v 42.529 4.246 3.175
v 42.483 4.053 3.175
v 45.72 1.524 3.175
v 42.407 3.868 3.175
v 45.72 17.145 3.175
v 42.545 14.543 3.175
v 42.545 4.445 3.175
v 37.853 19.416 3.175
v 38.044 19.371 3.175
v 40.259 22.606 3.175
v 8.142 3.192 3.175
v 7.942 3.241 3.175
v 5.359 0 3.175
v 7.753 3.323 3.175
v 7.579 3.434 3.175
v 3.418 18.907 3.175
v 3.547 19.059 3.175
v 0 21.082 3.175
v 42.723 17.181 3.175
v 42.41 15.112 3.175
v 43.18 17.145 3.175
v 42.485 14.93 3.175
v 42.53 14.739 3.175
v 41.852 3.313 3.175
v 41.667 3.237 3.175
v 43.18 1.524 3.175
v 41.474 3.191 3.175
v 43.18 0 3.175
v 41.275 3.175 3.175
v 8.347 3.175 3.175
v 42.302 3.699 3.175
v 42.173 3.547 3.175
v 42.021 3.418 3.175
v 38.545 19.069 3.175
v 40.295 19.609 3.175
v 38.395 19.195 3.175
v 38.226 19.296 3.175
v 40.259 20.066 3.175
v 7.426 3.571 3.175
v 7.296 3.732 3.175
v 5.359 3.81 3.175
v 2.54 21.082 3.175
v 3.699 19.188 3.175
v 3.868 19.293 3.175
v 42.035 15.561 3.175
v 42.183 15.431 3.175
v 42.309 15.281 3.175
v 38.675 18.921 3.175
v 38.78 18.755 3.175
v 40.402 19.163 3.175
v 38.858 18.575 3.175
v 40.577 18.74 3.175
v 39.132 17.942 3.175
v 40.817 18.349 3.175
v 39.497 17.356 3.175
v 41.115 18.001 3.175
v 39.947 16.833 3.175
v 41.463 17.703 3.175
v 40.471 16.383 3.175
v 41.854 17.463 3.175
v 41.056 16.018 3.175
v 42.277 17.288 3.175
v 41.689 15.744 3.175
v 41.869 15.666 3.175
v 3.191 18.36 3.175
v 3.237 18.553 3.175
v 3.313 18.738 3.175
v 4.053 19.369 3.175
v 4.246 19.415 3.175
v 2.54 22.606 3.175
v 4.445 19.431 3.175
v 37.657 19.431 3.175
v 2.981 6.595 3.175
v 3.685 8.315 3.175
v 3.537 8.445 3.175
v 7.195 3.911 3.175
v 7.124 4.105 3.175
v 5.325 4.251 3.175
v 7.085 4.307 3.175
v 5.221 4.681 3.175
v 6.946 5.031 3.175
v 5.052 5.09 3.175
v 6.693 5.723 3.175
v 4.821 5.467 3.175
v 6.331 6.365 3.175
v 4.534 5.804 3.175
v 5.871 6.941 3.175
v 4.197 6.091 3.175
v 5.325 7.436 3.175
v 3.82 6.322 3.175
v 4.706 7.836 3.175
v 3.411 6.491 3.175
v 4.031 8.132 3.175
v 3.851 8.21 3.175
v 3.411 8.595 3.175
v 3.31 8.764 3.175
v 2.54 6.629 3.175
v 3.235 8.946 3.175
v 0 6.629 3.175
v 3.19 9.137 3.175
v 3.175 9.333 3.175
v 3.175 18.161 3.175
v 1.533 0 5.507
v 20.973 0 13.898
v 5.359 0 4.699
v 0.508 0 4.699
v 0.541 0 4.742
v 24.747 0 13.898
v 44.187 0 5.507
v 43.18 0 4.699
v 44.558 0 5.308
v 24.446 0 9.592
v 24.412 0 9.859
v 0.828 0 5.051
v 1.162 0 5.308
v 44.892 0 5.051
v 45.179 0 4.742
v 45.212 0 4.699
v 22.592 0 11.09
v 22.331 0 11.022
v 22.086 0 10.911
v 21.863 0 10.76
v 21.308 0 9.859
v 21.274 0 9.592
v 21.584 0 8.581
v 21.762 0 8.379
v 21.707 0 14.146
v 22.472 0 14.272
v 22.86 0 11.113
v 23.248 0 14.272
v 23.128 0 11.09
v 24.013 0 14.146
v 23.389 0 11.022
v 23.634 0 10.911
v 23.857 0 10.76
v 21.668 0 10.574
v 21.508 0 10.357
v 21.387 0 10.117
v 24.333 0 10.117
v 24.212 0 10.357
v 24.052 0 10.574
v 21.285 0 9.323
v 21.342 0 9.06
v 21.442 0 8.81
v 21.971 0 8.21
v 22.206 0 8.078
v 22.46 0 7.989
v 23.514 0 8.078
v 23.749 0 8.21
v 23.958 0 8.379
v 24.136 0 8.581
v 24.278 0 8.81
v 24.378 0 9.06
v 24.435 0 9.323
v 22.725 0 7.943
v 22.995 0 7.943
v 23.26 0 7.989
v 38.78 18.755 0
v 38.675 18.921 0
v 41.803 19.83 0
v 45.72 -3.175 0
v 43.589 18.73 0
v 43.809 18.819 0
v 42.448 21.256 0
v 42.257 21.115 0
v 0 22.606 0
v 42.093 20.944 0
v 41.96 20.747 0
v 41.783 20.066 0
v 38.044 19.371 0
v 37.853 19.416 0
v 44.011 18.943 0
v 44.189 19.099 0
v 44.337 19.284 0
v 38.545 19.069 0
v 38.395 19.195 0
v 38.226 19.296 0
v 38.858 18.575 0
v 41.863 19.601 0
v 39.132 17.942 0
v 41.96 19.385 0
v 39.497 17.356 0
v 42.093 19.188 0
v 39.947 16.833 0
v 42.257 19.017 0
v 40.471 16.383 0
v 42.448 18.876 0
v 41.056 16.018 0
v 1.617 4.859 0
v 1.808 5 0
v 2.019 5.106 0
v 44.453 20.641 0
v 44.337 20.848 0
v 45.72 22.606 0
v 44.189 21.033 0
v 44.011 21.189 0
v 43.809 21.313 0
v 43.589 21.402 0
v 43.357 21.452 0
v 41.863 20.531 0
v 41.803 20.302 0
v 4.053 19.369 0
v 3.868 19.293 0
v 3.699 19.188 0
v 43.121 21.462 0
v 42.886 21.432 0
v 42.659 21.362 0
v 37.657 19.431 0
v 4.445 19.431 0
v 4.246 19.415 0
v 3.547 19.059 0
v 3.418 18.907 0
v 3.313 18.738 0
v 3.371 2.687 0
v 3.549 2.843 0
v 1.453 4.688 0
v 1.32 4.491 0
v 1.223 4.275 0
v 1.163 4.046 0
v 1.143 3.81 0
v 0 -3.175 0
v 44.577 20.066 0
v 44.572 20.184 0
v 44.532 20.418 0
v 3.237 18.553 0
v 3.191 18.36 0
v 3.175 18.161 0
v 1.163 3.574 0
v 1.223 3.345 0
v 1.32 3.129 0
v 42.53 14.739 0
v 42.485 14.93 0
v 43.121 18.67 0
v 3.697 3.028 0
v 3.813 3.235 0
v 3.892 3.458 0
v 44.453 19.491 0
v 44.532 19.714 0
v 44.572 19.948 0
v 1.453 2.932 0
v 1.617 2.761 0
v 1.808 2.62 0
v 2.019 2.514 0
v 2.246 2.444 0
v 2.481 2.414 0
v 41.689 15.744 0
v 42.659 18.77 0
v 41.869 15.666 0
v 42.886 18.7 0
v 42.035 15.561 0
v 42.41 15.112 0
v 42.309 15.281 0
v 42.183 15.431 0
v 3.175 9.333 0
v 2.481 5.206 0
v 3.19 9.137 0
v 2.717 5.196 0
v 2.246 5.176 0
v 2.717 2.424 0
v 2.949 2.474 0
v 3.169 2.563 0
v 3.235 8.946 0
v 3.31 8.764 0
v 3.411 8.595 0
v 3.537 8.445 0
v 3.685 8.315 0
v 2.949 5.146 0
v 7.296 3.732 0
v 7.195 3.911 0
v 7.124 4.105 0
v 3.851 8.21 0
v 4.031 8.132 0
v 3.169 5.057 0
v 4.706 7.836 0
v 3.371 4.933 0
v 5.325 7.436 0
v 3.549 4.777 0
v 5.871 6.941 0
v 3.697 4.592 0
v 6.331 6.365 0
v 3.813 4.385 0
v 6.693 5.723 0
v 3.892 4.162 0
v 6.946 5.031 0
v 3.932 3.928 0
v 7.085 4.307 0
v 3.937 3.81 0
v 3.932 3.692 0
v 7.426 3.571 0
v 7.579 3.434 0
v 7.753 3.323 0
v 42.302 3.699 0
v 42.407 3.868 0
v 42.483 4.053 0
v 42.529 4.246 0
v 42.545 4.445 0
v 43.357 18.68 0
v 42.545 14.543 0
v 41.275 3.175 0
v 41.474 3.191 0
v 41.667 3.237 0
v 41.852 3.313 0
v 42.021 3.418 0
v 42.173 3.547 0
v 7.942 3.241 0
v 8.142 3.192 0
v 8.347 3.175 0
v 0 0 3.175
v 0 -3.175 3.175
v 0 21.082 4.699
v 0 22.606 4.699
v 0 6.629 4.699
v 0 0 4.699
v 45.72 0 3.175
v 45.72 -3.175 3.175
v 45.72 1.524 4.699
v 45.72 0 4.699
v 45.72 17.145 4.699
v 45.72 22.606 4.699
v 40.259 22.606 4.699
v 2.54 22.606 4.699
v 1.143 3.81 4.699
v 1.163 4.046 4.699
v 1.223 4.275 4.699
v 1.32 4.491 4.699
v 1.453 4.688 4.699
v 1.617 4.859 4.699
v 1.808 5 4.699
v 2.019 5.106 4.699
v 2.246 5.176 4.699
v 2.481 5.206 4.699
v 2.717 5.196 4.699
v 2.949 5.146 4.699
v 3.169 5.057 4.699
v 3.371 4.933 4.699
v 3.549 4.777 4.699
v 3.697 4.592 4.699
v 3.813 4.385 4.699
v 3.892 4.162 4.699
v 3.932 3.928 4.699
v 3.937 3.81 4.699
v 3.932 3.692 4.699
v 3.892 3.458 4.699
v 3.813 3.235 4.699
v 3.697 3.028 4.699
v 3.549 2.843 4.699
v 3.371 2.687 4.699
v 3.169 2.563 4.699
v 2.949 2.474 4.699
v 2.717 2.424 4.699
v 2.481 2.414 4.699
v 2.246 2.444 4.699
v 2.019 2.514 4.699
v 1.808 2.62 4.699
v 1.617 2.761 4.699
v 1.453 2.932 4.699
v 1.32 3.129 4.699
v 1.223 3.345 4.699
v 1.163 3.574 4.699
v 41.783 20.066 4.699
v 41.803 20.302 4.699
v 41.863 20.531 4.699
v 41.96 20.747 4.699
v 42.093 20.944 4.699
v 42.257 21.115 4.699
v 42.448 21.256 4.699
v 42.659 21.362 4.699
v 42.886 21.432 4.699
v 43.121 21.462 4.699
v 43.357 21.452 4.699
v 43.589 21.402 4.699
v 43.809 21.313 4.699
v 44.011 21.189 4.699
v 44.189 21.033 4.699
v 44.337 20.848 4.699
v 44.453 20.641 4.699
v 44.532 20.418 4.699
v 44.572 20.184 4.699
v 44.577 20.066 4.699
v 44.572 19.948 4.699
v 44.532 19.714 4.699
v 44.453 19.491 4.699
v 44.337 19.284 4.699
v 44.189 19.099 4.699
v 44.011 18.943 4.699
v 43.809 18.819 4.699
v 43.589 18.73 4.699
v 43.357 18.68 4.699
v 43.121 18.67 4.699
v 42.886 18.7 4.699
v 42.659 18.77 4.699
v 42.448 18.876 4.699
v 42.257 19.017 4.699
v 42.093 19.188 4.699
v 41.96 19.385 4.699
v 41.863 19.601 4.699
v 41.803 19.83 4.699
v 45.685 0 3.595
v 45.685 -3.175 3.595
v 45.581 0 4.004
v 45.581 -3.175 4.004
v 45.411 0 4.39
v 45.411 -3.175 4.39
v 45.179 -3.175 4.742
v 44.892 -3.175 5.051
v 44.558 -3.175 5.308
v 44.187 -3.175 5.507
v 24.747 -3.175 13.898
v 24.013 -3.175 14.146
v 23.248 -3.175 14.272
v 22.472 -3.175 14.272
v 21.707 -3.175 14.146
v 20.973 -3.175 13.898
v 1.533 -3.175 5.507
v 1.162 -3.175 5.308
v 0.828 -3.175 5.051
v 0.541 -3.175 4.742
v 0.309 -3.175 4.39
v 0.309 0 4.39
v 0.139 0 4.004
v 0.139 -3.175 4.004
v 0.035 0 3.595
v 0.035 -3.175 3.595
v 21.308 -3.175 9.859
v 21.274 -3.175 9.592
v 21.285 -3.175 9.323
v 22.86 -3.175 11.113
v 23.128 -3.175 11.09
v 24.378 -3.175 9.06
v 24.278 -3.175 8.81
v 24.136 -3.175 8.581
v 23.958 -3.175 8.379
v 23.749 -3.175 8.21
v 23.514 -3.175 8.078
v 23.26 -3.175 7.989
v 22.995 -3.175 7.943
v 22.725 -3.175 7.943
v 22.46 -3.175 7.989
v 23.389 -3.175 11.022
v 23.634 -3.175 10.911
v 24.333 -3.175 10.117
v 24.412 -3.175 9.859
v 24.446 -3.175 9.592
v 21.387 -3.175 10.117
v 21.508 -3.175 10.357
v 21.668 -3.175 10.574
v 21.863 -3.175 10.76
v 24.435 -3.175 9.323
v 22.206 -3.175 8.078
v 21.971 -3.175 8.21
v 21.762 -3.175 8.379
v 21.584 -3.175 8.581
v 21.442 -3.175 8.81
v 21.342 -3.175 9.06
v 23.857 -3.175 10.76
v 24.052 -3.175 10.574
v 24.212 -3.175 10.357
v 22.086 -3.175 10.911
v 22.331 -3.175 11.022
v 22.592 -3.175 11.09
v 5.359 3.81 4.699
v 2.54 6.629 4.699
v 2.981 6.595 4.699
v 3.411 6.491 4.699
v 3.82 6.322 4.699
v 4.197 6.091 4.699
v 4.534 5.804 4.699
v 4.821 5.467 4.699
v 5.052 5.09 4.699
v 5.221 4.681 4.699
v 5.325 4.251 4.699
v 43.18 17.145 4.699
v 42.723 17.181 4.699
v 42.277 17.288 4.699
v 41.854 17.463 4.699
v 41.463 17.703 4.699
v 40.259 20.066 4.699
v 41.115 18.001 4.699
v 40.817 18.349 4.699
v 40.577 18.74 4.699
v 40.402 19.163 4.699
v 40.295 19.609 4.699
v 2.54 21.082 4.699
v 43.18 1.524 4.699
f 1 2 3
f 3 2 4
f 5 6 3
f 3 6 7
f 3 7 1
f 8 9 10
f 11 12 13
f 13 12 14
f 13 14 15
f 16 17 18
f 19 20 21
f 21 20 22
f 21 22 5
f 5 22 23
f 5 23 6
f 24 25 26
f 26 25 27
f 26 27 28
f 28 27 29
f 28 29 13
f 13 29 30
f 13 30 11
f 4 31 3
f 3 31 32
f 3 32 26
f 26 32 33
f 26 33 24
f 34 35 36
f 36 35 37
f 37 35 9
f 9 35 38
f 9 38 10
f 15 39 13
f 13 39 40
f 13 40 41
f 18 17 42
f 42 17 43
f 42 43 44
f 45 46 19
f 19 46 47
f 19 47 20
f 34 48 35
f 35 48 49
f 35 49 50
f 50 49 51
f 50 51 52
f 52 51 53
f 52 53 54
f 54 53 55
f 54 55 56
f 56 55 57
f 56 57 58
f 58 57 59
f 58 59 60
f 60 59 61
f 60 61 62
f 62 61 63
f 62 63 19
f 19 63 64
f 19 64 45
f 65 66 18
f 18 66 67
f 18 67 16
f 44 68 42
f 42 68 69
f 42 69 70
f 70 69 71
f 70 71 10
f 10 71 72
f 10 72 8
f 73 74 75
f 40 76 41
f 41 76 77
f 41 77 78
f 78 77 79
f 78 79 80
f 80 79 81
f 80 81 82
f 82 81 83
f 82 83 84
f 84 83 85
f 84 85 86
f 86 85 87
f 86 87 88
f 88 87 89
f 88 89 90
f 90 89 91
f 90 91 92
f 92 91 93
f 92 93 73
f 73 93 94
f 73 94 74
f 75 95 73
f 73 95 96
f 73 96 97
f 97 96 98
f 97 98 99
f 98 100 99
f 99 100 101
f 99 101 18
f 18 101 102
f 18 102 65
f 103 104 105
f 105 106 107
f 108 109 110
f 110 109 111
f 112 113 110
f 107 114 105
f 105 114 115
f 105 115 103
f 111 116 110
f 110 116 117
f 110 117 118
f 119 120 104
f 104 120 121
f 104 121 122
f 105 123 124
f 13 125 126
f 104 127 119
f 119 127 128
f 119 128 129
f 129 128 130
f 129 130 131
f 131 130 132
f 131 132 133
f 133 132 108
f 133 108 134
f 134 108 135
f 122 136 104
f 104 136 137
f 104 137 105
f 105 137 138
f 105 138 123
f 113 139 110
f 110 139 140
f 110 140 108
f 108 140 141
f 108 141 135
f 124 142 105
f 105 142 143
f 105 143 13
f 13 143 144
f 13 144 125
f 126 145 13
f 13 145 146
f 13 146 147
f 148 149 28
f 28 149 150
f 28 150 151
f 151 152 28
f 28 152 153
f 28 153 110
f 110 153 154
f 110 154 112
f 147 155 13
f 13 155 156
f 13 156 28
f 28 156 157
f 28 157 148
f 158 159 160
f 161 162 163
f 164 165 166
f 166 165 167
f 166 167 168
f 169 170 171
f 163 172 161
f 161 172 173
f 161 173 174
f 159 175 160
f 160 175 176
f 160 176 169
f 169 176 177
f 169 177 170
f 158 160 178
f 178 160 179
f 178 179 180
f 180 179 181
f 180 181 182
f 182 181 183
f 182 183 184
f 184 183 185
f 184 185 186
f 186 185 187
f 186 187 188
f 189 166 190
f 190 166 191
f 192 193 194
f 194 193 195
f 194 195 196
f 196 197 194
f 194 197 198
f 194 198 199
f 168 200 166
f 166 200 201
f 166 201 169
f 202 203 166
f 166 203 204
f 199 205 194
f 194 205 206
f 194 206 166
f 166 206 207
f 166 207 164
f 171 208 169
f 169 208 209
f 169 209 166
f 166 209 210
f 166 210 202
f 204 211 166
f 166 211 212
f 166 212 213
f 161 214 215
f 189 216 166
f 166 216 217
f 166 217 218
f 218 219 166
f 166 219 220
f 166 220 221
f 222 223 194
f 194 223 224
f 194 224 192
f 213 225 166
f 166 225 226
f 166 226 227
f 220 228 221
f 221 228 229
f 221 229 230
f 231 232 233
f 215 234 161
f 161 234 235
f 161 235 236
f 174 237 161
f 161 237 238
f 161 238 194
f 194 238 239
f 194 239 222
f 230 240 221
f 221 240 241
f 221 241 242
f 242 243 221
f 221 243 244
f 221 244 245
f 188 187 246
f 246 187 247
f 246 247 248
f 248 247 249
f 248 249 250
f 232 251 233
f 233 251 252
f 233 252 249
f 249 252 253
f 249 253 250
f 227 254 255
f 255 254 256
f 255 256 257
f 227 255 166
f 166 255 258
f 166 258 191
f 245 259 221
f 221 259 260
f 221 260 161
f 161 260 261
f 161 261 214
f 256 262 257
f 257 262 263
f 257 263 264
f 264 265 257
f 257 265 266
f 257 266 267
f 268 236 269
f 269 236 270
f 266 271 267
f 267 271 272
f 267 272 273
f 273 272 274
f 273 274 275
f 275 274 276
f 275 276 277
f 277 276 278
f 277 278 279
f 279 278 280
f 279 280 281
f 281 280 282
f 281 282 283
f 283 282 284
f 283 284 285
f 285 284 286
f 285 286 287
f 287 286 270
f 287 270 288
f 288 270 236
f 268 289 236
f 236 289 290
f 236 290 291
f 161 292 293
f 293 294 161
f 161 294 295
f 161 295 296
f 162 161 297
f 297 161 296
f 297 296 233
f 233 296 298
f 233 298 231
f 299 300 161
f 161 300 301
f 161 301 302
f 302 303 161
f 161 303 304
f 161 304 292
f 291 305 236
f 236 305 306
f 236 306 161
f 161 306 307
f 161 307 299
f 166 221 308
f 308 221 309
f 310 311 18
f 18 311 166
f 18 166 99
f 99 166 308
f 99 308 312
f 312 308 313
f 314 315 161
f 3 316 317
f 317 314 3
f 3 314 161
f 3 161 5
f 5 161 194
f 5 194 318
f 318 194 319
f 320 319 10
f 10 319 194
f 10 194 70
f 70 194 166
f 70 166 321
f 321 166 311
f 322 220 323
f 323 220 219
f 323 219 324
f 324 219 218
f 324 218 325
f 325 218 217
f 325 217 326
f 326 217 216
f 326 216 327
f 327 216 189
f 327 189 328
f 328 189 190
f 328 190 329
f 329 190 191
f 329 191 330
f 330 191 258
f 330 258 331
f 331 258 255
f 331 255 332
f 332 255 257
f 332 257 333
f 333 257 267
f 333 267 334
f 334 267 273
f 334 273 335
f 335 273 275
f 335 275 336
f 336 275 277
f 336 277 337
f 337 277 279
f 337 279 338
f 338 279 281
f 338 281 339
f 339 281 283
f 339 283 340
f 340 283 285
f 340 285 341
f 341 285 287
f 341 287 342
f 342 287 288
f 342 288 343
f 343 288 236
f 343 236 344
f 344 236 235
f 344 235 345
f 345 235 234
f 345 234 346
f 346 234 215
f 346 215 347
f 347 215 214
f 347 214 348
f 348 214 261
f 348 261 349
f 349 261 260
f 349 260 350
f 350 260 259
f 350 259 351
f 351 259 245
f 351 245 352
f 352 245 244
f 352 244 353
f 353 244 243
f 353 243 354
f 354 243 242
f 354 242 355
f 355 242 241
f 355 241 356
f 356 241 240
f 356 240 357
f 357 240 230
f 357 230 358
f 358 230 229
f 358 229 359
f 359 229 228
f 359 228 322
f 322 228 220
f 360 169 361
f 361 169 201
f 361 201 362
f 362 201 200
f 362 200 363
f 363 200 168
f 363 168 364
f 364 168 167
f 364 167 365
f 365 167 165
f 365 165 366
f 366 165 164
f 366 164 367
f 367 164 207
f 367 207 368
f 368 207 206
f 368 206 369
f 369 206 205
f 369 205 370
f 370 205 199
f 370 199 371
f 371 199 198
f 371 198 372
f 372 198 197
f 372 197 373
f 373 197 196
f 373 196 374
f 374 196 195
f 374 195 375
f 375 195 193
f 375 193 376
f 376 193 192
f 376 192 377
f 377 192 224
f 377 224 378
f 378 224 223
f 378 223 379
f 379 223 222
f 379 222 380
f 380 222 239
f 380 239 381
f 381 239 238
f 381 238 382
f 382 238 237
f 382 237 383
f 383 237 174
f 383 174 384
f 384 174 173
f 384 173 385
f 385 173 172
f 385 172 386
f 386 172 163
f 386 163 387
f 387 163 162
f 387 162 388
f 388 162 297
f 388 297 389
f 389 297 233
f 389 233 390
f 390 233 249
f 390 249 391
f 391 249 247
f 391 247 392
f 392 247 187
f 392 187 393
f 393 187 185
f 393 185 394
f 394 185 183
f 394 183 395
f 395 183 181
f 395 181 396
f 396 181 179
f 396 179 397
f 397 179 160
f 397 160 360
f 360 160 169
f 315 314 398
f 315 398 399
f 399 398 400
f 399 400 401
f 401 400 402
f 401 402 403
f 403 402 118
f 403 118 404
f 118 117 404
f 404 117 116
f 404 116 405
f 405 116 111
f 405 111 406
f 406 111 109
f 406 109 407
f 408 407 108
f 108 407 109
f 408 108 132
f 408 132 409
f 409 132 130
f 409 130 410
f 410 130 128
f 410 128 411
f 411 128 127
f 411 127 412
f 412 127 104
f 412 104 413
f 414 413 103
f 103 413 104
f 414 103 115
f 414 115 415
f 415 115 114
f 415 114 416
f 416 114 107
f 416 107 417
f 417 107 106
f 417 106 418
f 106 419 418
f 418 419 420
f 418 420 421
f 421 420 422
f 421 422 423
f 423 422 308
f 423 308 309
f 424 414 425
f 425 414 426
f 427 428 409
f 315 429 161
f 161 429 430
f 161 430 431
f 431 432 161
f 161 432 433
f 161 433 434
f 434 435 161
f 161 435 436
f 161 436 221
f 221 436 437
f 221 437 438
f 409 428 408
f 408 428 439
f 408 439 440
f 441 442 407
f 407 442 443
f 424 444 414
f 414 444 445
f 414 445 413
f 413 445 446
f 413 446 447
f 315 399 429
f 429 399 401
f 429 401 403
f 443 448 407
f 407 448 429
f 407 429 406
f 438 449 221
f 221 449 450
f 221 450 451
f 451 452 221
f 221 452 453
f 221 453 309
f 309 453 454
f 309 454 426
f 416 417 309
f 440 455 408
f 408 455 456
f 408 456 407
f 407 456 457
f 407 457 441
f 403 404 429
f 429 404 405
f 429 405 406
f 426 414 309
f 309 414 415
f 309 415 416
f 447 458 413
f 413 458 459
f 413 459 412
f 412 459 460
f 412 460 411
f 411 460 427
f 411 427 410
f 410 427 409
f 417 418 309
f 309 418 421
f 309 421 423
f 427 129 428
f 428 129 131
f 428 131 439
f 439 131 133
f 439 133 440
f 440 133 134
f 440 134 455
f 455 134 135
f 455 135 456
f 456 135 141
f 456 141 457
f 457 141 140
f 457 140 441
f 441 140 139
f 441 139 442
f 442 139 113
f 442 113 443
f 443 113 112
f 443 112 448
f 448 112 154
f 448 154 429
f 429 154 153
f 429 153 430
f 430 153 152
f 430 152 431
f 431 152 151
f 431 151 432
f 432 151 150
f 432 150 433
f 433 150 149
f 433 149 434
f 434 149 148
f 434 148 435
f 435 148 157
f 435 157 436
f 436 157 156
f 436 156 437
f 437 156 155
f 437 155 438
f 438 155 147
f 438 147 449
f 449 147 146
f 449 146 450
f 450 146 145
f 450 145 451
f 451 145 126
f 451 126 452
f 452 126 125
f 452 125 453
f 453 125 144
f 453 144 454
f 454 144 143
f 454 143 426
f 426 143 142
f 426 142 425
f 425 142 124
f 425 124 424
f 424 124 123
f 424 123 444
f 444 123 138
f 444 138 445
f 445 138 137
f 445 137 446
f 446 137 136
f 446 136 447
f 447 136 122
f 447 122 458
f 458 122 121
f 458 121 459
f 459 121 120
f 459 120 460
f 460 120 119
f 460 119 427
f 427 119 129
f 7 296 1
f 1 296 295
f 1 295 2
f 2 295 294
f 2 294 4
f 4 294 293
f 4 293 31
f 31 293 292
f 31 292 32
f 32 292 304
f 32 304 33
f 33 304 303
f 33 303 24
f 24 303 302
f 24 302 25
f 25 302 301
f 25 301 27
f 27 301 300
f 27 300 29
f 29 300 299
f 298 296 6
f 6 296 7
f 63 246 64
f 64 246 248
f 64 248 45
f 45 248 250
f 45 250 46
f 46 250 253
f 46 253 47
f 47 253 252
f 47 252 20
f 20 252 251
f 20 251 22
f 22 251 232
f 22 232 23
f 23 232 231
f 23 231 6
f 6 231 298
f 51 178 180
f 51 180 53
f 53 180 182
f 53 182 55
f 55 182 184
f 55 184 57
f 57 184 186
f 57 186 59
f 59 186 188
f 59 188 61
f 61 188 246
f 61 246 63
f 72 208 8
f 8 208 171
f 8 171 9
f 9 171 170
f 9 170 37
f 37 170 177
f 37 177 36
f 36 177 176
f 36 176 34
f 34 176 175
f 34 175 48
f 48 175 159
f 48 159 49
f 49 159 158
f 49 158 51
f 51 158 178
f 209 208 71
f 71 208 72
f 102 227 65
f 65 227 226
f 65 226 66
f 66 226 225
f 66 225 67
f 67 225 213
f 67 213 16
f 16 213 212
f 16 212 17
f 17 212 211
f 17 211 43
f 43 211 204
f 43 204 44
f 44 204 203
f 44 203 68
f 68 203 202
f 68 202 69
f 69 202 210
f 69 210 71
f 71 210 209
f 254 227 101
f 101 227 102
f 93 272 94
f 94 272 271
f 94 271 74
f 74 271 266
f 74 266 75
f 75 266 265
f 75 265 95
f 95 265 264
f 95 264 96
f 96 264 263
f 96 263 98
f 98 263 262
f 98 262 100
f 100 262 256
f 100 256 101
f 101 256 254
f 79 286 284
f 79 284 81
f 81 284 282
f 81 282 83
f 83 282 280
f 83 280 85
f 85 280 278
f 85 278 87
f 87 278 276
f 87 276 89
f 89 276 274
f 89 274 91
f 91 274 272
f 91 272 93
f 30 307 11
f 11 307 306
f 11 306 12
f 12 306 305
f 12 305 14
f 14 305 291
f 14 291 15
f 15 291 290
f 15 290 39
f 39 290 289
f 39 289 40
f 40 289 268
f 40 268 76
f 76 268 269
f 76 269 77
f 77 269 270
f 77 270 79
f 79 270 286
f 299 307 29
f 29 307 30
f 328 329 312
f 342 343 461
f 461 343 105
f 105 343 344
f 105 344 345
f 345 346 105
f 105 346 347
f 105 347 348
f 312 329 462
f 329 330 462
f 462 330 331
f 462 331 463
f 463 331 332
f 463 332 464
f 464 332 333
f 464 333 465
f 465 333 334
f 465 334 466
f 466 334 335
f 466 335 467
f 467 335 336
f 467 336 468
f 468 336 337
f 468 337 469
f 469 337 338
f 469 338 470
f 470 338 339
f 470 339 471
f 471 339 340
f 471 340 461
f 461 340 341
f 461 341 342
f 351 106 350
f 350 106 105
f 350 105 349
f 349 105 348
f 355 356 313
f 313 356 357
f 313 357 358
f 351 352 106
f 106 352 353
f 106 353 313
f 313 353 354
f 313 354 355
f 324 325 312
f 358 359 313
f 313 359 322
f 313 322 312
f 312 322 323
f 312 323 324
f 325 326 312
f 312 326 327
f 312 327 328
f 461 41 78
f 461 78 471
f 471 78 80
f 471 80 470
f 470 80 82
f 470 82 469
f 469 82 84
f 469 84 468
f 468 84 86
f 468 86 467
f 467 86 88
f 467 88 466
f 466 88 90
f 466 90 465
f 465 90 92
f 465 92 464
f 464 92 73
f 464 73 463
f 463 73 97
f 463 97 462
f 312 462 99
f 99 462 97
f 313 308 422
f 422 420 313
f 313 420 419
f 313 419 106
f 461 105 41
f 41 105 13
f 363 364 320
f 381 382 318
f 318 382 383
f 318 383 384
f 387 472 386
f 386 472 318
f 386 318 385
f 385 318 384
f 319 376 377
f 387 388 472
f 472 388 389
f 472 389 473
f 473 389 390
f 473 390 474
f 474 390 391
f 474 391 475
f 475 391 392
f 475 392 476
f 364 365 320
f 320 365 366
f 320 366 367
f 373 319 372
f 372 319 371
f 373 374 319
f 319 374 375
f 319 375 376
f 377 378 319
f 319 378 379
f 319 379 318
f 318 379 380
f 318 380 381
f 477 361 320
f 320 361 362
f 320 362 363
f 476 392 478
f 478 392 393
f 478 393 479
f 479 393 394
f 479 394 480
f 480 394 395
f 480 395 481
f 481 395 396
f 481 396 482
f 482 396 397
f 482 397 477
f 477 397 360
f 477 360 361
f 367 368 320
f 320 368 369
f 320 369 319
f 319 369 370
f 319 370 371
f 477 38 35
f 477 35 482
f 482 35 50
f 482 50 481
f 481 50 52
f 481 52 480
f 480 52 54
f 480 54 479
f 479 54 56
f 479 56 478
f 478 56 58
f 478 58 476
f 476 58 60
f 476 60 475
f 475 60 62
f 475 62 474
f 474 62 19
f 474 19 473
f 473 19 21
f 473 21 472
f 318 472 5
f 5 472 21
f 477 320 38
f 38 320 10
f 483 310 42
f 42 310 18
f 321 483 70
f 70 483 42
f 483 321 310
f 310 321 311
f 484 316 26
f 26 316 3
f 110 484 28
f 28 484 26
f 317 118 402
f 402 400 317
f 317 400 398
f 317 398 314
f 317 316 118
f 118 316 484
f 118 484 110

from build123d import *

# Parameters (mm, degrees)
SKETCH1_W           = 45.72
SKETCH1_H           = 22.606
SKETCH1_R           = 1.397
BOSS_EXTRUDE1_DEPTH = 3.175
SKETCH3_R           = 1.5875
BOSS_EXTRUDE2_DEPTH = 3.175
CUT_EXTRUDE1_DEPTH  = 53.966803682
SKETCH5_R           = 1.397
SKETCH5_W           = 2.54
SKETCH5_H           = 1.524
BOSS_EXTRUDE3_DEPTH = 1.524


with BuildPart() as part:
    # Sketch1 → Boss-Extrude1 (new body)
    with BuildSketch(Plane.XY):
        with Locations((22.86, 11.303)):
            Rectangle(SKETCH1_W, SKETCH1_H)
        with Locations((2.54, 3.81)):
            Circle(SKETCH1_R, mode=Mode.SUBTRACT)
        with Locations((43.18, 20.066)):
            Circle(SKETCH1_R, mode=Mode.SUBTRACT)
    extrude(amount=BOSS_EXTRUDE1_DEPTH)

    # Sketch3 → Boss-Extrude2 (add)
    with BuildSketch(Plane(origin=(0, 0, 0), x_dir=(1, 0, 0), z_dir=(0, 1, 0))):
        with BuildLine():
            Line((0, -3.175), (0, 0))
            Line((0, 0), (45.72, 0))
            Line((45.72, 0), (45.72, -3.175))
            ThreePointArc((45.72, -3.175), (45.302298274, -4.570510672), (44.186574776, -5.507039284))
            Line((44.186574776, -5.507039284), (24.747327705, -13.897573657))
            ThreePointArc((24.747327705, -13.897573657), (22.86, -14.2875), (20.972672295, -13.897573657))
            Line((20.972672295, -13.897573657), (1.533425224, -5.507039284))
            ThreePointArc((1.533425224, -5.507039284), (0.417701726, -4.570510672), (0, -3.175))
        make_face()
        with Locations(Location((22.86, -9.525, 0), (0, 0, 270))):
            Circle(SKETCH3_R, mode=Mode.SUBTRACT)
    extrude(amount=-BOSS_EXTRUDE2_DEPTH)

    # Sketch4 → Cut-Extrude1 (cut, through all)
    with BuildSketch(Plane.XY):
        with BuildLine():
            Line((3.175, 18.161), (3.175, 9.332674986))
            ThreePointArc((3.175, 9.332674986), (3.410870982, 8.595465942), (4.030869565, 8.132093467))
            ThreePointArc((4.030869565, 8.132093467), (6.112895277, 6.662648479), (7.084911244, 4.306956522))
            ThreePointArc((7.084911244, 4.306956522), (7.499570341, 3.499427365), (8.34738659, 3.175))
            Line((8.34738659, 3.175), (41.275, 3.175))
            ThreePointArc((41.275, 3.175), (42.173025612, 3.546974388), (42.545, 4.445))
            Line((42.545, 4.445), (42.545, 14.543325014))
            ThreePointArc((42.545, 14.543325014), (42.309129018, 15.280534058), (41.689130435, 15.743906533))
            ThreePointArc((41.689130435, 15.743906533), (39.947107796, 16.833107796), (38.857906533, 18.575130435))
            ThreePointArc((38.857906533, 18.575130435), (38.394534058, 19.195129018), (37.657325014, 19.431))
            Line((37.657325014, 19.431), (4.445, 19.431))
            ThreePointArc((4.445, 19.431), (3.546974388, 19.059025612), (3.175, 18.161))
        make_face()
    extrude(amount=CUT_EXTRUDE1_DEPTH, mode=Mode.SUBTRACT)

    # Sketch5 → Boss-Extrude3 (add)
    # profile 1 of 4: a face of its own
    with BuildSketch(Plane.XY.offset(3.175)):
        with BuildLine():
            Line((2.54, 6.6294), (0, 6.6294))
            Line((0, 6.6294), (0, 0))
            Line((0, 0), (5.3594, 0))
            Line((5.3594, 0), (5.3594, 3.81))
            ThreePointArc((5.3594, 3.81), (4.533616859, 5.803616859), (2.54, 6.6294))
        make_face()
        with Locations((2.54, 3.81)):
            Circle(SKETCH5_R, mode=Mode.SUBTRACT)
    # profile 2 of 4: a face of its own
    with BuildSketch(Plane.XY.offset(3.175)):
        with BuildLine():
            Line((40.259, 20.066), (40.259, 22.606))
            Line((40.259, 22.606), (45.72, 22.606))
            Line((45.72, 22.606), (45.72, 17.145))
            Line((45.72, 17.145), (43.18, 17.145))
            ThreePointArc((43.18, 17.145), (41.114541092, 18.000541092), (40.259, 20.066))
        make_face()
        with Locations((43.18, 20.066)):
            Circle(SKETCH5_R, mode=Mode.SUBTRACT)
    # profile 3 of 4: a face of its own
    with BuildSketch(Plane.XY.offset(3.175)):
        with Locations((1.27, 21.844)):
            Rectangle(SKETCH5_W, SKETCH5_H)
    # profile 4 of 4: a face of its own
    with BuildSketch(Plane.XY.offset(3.175)):
        with Locations((44.45, 0.762)):
            Rectangle(SKETCH5_W, SKETCH5_H)
    extrude(amount=BOSS_EXTRUDE3_DEPTH)


solid = part.part
